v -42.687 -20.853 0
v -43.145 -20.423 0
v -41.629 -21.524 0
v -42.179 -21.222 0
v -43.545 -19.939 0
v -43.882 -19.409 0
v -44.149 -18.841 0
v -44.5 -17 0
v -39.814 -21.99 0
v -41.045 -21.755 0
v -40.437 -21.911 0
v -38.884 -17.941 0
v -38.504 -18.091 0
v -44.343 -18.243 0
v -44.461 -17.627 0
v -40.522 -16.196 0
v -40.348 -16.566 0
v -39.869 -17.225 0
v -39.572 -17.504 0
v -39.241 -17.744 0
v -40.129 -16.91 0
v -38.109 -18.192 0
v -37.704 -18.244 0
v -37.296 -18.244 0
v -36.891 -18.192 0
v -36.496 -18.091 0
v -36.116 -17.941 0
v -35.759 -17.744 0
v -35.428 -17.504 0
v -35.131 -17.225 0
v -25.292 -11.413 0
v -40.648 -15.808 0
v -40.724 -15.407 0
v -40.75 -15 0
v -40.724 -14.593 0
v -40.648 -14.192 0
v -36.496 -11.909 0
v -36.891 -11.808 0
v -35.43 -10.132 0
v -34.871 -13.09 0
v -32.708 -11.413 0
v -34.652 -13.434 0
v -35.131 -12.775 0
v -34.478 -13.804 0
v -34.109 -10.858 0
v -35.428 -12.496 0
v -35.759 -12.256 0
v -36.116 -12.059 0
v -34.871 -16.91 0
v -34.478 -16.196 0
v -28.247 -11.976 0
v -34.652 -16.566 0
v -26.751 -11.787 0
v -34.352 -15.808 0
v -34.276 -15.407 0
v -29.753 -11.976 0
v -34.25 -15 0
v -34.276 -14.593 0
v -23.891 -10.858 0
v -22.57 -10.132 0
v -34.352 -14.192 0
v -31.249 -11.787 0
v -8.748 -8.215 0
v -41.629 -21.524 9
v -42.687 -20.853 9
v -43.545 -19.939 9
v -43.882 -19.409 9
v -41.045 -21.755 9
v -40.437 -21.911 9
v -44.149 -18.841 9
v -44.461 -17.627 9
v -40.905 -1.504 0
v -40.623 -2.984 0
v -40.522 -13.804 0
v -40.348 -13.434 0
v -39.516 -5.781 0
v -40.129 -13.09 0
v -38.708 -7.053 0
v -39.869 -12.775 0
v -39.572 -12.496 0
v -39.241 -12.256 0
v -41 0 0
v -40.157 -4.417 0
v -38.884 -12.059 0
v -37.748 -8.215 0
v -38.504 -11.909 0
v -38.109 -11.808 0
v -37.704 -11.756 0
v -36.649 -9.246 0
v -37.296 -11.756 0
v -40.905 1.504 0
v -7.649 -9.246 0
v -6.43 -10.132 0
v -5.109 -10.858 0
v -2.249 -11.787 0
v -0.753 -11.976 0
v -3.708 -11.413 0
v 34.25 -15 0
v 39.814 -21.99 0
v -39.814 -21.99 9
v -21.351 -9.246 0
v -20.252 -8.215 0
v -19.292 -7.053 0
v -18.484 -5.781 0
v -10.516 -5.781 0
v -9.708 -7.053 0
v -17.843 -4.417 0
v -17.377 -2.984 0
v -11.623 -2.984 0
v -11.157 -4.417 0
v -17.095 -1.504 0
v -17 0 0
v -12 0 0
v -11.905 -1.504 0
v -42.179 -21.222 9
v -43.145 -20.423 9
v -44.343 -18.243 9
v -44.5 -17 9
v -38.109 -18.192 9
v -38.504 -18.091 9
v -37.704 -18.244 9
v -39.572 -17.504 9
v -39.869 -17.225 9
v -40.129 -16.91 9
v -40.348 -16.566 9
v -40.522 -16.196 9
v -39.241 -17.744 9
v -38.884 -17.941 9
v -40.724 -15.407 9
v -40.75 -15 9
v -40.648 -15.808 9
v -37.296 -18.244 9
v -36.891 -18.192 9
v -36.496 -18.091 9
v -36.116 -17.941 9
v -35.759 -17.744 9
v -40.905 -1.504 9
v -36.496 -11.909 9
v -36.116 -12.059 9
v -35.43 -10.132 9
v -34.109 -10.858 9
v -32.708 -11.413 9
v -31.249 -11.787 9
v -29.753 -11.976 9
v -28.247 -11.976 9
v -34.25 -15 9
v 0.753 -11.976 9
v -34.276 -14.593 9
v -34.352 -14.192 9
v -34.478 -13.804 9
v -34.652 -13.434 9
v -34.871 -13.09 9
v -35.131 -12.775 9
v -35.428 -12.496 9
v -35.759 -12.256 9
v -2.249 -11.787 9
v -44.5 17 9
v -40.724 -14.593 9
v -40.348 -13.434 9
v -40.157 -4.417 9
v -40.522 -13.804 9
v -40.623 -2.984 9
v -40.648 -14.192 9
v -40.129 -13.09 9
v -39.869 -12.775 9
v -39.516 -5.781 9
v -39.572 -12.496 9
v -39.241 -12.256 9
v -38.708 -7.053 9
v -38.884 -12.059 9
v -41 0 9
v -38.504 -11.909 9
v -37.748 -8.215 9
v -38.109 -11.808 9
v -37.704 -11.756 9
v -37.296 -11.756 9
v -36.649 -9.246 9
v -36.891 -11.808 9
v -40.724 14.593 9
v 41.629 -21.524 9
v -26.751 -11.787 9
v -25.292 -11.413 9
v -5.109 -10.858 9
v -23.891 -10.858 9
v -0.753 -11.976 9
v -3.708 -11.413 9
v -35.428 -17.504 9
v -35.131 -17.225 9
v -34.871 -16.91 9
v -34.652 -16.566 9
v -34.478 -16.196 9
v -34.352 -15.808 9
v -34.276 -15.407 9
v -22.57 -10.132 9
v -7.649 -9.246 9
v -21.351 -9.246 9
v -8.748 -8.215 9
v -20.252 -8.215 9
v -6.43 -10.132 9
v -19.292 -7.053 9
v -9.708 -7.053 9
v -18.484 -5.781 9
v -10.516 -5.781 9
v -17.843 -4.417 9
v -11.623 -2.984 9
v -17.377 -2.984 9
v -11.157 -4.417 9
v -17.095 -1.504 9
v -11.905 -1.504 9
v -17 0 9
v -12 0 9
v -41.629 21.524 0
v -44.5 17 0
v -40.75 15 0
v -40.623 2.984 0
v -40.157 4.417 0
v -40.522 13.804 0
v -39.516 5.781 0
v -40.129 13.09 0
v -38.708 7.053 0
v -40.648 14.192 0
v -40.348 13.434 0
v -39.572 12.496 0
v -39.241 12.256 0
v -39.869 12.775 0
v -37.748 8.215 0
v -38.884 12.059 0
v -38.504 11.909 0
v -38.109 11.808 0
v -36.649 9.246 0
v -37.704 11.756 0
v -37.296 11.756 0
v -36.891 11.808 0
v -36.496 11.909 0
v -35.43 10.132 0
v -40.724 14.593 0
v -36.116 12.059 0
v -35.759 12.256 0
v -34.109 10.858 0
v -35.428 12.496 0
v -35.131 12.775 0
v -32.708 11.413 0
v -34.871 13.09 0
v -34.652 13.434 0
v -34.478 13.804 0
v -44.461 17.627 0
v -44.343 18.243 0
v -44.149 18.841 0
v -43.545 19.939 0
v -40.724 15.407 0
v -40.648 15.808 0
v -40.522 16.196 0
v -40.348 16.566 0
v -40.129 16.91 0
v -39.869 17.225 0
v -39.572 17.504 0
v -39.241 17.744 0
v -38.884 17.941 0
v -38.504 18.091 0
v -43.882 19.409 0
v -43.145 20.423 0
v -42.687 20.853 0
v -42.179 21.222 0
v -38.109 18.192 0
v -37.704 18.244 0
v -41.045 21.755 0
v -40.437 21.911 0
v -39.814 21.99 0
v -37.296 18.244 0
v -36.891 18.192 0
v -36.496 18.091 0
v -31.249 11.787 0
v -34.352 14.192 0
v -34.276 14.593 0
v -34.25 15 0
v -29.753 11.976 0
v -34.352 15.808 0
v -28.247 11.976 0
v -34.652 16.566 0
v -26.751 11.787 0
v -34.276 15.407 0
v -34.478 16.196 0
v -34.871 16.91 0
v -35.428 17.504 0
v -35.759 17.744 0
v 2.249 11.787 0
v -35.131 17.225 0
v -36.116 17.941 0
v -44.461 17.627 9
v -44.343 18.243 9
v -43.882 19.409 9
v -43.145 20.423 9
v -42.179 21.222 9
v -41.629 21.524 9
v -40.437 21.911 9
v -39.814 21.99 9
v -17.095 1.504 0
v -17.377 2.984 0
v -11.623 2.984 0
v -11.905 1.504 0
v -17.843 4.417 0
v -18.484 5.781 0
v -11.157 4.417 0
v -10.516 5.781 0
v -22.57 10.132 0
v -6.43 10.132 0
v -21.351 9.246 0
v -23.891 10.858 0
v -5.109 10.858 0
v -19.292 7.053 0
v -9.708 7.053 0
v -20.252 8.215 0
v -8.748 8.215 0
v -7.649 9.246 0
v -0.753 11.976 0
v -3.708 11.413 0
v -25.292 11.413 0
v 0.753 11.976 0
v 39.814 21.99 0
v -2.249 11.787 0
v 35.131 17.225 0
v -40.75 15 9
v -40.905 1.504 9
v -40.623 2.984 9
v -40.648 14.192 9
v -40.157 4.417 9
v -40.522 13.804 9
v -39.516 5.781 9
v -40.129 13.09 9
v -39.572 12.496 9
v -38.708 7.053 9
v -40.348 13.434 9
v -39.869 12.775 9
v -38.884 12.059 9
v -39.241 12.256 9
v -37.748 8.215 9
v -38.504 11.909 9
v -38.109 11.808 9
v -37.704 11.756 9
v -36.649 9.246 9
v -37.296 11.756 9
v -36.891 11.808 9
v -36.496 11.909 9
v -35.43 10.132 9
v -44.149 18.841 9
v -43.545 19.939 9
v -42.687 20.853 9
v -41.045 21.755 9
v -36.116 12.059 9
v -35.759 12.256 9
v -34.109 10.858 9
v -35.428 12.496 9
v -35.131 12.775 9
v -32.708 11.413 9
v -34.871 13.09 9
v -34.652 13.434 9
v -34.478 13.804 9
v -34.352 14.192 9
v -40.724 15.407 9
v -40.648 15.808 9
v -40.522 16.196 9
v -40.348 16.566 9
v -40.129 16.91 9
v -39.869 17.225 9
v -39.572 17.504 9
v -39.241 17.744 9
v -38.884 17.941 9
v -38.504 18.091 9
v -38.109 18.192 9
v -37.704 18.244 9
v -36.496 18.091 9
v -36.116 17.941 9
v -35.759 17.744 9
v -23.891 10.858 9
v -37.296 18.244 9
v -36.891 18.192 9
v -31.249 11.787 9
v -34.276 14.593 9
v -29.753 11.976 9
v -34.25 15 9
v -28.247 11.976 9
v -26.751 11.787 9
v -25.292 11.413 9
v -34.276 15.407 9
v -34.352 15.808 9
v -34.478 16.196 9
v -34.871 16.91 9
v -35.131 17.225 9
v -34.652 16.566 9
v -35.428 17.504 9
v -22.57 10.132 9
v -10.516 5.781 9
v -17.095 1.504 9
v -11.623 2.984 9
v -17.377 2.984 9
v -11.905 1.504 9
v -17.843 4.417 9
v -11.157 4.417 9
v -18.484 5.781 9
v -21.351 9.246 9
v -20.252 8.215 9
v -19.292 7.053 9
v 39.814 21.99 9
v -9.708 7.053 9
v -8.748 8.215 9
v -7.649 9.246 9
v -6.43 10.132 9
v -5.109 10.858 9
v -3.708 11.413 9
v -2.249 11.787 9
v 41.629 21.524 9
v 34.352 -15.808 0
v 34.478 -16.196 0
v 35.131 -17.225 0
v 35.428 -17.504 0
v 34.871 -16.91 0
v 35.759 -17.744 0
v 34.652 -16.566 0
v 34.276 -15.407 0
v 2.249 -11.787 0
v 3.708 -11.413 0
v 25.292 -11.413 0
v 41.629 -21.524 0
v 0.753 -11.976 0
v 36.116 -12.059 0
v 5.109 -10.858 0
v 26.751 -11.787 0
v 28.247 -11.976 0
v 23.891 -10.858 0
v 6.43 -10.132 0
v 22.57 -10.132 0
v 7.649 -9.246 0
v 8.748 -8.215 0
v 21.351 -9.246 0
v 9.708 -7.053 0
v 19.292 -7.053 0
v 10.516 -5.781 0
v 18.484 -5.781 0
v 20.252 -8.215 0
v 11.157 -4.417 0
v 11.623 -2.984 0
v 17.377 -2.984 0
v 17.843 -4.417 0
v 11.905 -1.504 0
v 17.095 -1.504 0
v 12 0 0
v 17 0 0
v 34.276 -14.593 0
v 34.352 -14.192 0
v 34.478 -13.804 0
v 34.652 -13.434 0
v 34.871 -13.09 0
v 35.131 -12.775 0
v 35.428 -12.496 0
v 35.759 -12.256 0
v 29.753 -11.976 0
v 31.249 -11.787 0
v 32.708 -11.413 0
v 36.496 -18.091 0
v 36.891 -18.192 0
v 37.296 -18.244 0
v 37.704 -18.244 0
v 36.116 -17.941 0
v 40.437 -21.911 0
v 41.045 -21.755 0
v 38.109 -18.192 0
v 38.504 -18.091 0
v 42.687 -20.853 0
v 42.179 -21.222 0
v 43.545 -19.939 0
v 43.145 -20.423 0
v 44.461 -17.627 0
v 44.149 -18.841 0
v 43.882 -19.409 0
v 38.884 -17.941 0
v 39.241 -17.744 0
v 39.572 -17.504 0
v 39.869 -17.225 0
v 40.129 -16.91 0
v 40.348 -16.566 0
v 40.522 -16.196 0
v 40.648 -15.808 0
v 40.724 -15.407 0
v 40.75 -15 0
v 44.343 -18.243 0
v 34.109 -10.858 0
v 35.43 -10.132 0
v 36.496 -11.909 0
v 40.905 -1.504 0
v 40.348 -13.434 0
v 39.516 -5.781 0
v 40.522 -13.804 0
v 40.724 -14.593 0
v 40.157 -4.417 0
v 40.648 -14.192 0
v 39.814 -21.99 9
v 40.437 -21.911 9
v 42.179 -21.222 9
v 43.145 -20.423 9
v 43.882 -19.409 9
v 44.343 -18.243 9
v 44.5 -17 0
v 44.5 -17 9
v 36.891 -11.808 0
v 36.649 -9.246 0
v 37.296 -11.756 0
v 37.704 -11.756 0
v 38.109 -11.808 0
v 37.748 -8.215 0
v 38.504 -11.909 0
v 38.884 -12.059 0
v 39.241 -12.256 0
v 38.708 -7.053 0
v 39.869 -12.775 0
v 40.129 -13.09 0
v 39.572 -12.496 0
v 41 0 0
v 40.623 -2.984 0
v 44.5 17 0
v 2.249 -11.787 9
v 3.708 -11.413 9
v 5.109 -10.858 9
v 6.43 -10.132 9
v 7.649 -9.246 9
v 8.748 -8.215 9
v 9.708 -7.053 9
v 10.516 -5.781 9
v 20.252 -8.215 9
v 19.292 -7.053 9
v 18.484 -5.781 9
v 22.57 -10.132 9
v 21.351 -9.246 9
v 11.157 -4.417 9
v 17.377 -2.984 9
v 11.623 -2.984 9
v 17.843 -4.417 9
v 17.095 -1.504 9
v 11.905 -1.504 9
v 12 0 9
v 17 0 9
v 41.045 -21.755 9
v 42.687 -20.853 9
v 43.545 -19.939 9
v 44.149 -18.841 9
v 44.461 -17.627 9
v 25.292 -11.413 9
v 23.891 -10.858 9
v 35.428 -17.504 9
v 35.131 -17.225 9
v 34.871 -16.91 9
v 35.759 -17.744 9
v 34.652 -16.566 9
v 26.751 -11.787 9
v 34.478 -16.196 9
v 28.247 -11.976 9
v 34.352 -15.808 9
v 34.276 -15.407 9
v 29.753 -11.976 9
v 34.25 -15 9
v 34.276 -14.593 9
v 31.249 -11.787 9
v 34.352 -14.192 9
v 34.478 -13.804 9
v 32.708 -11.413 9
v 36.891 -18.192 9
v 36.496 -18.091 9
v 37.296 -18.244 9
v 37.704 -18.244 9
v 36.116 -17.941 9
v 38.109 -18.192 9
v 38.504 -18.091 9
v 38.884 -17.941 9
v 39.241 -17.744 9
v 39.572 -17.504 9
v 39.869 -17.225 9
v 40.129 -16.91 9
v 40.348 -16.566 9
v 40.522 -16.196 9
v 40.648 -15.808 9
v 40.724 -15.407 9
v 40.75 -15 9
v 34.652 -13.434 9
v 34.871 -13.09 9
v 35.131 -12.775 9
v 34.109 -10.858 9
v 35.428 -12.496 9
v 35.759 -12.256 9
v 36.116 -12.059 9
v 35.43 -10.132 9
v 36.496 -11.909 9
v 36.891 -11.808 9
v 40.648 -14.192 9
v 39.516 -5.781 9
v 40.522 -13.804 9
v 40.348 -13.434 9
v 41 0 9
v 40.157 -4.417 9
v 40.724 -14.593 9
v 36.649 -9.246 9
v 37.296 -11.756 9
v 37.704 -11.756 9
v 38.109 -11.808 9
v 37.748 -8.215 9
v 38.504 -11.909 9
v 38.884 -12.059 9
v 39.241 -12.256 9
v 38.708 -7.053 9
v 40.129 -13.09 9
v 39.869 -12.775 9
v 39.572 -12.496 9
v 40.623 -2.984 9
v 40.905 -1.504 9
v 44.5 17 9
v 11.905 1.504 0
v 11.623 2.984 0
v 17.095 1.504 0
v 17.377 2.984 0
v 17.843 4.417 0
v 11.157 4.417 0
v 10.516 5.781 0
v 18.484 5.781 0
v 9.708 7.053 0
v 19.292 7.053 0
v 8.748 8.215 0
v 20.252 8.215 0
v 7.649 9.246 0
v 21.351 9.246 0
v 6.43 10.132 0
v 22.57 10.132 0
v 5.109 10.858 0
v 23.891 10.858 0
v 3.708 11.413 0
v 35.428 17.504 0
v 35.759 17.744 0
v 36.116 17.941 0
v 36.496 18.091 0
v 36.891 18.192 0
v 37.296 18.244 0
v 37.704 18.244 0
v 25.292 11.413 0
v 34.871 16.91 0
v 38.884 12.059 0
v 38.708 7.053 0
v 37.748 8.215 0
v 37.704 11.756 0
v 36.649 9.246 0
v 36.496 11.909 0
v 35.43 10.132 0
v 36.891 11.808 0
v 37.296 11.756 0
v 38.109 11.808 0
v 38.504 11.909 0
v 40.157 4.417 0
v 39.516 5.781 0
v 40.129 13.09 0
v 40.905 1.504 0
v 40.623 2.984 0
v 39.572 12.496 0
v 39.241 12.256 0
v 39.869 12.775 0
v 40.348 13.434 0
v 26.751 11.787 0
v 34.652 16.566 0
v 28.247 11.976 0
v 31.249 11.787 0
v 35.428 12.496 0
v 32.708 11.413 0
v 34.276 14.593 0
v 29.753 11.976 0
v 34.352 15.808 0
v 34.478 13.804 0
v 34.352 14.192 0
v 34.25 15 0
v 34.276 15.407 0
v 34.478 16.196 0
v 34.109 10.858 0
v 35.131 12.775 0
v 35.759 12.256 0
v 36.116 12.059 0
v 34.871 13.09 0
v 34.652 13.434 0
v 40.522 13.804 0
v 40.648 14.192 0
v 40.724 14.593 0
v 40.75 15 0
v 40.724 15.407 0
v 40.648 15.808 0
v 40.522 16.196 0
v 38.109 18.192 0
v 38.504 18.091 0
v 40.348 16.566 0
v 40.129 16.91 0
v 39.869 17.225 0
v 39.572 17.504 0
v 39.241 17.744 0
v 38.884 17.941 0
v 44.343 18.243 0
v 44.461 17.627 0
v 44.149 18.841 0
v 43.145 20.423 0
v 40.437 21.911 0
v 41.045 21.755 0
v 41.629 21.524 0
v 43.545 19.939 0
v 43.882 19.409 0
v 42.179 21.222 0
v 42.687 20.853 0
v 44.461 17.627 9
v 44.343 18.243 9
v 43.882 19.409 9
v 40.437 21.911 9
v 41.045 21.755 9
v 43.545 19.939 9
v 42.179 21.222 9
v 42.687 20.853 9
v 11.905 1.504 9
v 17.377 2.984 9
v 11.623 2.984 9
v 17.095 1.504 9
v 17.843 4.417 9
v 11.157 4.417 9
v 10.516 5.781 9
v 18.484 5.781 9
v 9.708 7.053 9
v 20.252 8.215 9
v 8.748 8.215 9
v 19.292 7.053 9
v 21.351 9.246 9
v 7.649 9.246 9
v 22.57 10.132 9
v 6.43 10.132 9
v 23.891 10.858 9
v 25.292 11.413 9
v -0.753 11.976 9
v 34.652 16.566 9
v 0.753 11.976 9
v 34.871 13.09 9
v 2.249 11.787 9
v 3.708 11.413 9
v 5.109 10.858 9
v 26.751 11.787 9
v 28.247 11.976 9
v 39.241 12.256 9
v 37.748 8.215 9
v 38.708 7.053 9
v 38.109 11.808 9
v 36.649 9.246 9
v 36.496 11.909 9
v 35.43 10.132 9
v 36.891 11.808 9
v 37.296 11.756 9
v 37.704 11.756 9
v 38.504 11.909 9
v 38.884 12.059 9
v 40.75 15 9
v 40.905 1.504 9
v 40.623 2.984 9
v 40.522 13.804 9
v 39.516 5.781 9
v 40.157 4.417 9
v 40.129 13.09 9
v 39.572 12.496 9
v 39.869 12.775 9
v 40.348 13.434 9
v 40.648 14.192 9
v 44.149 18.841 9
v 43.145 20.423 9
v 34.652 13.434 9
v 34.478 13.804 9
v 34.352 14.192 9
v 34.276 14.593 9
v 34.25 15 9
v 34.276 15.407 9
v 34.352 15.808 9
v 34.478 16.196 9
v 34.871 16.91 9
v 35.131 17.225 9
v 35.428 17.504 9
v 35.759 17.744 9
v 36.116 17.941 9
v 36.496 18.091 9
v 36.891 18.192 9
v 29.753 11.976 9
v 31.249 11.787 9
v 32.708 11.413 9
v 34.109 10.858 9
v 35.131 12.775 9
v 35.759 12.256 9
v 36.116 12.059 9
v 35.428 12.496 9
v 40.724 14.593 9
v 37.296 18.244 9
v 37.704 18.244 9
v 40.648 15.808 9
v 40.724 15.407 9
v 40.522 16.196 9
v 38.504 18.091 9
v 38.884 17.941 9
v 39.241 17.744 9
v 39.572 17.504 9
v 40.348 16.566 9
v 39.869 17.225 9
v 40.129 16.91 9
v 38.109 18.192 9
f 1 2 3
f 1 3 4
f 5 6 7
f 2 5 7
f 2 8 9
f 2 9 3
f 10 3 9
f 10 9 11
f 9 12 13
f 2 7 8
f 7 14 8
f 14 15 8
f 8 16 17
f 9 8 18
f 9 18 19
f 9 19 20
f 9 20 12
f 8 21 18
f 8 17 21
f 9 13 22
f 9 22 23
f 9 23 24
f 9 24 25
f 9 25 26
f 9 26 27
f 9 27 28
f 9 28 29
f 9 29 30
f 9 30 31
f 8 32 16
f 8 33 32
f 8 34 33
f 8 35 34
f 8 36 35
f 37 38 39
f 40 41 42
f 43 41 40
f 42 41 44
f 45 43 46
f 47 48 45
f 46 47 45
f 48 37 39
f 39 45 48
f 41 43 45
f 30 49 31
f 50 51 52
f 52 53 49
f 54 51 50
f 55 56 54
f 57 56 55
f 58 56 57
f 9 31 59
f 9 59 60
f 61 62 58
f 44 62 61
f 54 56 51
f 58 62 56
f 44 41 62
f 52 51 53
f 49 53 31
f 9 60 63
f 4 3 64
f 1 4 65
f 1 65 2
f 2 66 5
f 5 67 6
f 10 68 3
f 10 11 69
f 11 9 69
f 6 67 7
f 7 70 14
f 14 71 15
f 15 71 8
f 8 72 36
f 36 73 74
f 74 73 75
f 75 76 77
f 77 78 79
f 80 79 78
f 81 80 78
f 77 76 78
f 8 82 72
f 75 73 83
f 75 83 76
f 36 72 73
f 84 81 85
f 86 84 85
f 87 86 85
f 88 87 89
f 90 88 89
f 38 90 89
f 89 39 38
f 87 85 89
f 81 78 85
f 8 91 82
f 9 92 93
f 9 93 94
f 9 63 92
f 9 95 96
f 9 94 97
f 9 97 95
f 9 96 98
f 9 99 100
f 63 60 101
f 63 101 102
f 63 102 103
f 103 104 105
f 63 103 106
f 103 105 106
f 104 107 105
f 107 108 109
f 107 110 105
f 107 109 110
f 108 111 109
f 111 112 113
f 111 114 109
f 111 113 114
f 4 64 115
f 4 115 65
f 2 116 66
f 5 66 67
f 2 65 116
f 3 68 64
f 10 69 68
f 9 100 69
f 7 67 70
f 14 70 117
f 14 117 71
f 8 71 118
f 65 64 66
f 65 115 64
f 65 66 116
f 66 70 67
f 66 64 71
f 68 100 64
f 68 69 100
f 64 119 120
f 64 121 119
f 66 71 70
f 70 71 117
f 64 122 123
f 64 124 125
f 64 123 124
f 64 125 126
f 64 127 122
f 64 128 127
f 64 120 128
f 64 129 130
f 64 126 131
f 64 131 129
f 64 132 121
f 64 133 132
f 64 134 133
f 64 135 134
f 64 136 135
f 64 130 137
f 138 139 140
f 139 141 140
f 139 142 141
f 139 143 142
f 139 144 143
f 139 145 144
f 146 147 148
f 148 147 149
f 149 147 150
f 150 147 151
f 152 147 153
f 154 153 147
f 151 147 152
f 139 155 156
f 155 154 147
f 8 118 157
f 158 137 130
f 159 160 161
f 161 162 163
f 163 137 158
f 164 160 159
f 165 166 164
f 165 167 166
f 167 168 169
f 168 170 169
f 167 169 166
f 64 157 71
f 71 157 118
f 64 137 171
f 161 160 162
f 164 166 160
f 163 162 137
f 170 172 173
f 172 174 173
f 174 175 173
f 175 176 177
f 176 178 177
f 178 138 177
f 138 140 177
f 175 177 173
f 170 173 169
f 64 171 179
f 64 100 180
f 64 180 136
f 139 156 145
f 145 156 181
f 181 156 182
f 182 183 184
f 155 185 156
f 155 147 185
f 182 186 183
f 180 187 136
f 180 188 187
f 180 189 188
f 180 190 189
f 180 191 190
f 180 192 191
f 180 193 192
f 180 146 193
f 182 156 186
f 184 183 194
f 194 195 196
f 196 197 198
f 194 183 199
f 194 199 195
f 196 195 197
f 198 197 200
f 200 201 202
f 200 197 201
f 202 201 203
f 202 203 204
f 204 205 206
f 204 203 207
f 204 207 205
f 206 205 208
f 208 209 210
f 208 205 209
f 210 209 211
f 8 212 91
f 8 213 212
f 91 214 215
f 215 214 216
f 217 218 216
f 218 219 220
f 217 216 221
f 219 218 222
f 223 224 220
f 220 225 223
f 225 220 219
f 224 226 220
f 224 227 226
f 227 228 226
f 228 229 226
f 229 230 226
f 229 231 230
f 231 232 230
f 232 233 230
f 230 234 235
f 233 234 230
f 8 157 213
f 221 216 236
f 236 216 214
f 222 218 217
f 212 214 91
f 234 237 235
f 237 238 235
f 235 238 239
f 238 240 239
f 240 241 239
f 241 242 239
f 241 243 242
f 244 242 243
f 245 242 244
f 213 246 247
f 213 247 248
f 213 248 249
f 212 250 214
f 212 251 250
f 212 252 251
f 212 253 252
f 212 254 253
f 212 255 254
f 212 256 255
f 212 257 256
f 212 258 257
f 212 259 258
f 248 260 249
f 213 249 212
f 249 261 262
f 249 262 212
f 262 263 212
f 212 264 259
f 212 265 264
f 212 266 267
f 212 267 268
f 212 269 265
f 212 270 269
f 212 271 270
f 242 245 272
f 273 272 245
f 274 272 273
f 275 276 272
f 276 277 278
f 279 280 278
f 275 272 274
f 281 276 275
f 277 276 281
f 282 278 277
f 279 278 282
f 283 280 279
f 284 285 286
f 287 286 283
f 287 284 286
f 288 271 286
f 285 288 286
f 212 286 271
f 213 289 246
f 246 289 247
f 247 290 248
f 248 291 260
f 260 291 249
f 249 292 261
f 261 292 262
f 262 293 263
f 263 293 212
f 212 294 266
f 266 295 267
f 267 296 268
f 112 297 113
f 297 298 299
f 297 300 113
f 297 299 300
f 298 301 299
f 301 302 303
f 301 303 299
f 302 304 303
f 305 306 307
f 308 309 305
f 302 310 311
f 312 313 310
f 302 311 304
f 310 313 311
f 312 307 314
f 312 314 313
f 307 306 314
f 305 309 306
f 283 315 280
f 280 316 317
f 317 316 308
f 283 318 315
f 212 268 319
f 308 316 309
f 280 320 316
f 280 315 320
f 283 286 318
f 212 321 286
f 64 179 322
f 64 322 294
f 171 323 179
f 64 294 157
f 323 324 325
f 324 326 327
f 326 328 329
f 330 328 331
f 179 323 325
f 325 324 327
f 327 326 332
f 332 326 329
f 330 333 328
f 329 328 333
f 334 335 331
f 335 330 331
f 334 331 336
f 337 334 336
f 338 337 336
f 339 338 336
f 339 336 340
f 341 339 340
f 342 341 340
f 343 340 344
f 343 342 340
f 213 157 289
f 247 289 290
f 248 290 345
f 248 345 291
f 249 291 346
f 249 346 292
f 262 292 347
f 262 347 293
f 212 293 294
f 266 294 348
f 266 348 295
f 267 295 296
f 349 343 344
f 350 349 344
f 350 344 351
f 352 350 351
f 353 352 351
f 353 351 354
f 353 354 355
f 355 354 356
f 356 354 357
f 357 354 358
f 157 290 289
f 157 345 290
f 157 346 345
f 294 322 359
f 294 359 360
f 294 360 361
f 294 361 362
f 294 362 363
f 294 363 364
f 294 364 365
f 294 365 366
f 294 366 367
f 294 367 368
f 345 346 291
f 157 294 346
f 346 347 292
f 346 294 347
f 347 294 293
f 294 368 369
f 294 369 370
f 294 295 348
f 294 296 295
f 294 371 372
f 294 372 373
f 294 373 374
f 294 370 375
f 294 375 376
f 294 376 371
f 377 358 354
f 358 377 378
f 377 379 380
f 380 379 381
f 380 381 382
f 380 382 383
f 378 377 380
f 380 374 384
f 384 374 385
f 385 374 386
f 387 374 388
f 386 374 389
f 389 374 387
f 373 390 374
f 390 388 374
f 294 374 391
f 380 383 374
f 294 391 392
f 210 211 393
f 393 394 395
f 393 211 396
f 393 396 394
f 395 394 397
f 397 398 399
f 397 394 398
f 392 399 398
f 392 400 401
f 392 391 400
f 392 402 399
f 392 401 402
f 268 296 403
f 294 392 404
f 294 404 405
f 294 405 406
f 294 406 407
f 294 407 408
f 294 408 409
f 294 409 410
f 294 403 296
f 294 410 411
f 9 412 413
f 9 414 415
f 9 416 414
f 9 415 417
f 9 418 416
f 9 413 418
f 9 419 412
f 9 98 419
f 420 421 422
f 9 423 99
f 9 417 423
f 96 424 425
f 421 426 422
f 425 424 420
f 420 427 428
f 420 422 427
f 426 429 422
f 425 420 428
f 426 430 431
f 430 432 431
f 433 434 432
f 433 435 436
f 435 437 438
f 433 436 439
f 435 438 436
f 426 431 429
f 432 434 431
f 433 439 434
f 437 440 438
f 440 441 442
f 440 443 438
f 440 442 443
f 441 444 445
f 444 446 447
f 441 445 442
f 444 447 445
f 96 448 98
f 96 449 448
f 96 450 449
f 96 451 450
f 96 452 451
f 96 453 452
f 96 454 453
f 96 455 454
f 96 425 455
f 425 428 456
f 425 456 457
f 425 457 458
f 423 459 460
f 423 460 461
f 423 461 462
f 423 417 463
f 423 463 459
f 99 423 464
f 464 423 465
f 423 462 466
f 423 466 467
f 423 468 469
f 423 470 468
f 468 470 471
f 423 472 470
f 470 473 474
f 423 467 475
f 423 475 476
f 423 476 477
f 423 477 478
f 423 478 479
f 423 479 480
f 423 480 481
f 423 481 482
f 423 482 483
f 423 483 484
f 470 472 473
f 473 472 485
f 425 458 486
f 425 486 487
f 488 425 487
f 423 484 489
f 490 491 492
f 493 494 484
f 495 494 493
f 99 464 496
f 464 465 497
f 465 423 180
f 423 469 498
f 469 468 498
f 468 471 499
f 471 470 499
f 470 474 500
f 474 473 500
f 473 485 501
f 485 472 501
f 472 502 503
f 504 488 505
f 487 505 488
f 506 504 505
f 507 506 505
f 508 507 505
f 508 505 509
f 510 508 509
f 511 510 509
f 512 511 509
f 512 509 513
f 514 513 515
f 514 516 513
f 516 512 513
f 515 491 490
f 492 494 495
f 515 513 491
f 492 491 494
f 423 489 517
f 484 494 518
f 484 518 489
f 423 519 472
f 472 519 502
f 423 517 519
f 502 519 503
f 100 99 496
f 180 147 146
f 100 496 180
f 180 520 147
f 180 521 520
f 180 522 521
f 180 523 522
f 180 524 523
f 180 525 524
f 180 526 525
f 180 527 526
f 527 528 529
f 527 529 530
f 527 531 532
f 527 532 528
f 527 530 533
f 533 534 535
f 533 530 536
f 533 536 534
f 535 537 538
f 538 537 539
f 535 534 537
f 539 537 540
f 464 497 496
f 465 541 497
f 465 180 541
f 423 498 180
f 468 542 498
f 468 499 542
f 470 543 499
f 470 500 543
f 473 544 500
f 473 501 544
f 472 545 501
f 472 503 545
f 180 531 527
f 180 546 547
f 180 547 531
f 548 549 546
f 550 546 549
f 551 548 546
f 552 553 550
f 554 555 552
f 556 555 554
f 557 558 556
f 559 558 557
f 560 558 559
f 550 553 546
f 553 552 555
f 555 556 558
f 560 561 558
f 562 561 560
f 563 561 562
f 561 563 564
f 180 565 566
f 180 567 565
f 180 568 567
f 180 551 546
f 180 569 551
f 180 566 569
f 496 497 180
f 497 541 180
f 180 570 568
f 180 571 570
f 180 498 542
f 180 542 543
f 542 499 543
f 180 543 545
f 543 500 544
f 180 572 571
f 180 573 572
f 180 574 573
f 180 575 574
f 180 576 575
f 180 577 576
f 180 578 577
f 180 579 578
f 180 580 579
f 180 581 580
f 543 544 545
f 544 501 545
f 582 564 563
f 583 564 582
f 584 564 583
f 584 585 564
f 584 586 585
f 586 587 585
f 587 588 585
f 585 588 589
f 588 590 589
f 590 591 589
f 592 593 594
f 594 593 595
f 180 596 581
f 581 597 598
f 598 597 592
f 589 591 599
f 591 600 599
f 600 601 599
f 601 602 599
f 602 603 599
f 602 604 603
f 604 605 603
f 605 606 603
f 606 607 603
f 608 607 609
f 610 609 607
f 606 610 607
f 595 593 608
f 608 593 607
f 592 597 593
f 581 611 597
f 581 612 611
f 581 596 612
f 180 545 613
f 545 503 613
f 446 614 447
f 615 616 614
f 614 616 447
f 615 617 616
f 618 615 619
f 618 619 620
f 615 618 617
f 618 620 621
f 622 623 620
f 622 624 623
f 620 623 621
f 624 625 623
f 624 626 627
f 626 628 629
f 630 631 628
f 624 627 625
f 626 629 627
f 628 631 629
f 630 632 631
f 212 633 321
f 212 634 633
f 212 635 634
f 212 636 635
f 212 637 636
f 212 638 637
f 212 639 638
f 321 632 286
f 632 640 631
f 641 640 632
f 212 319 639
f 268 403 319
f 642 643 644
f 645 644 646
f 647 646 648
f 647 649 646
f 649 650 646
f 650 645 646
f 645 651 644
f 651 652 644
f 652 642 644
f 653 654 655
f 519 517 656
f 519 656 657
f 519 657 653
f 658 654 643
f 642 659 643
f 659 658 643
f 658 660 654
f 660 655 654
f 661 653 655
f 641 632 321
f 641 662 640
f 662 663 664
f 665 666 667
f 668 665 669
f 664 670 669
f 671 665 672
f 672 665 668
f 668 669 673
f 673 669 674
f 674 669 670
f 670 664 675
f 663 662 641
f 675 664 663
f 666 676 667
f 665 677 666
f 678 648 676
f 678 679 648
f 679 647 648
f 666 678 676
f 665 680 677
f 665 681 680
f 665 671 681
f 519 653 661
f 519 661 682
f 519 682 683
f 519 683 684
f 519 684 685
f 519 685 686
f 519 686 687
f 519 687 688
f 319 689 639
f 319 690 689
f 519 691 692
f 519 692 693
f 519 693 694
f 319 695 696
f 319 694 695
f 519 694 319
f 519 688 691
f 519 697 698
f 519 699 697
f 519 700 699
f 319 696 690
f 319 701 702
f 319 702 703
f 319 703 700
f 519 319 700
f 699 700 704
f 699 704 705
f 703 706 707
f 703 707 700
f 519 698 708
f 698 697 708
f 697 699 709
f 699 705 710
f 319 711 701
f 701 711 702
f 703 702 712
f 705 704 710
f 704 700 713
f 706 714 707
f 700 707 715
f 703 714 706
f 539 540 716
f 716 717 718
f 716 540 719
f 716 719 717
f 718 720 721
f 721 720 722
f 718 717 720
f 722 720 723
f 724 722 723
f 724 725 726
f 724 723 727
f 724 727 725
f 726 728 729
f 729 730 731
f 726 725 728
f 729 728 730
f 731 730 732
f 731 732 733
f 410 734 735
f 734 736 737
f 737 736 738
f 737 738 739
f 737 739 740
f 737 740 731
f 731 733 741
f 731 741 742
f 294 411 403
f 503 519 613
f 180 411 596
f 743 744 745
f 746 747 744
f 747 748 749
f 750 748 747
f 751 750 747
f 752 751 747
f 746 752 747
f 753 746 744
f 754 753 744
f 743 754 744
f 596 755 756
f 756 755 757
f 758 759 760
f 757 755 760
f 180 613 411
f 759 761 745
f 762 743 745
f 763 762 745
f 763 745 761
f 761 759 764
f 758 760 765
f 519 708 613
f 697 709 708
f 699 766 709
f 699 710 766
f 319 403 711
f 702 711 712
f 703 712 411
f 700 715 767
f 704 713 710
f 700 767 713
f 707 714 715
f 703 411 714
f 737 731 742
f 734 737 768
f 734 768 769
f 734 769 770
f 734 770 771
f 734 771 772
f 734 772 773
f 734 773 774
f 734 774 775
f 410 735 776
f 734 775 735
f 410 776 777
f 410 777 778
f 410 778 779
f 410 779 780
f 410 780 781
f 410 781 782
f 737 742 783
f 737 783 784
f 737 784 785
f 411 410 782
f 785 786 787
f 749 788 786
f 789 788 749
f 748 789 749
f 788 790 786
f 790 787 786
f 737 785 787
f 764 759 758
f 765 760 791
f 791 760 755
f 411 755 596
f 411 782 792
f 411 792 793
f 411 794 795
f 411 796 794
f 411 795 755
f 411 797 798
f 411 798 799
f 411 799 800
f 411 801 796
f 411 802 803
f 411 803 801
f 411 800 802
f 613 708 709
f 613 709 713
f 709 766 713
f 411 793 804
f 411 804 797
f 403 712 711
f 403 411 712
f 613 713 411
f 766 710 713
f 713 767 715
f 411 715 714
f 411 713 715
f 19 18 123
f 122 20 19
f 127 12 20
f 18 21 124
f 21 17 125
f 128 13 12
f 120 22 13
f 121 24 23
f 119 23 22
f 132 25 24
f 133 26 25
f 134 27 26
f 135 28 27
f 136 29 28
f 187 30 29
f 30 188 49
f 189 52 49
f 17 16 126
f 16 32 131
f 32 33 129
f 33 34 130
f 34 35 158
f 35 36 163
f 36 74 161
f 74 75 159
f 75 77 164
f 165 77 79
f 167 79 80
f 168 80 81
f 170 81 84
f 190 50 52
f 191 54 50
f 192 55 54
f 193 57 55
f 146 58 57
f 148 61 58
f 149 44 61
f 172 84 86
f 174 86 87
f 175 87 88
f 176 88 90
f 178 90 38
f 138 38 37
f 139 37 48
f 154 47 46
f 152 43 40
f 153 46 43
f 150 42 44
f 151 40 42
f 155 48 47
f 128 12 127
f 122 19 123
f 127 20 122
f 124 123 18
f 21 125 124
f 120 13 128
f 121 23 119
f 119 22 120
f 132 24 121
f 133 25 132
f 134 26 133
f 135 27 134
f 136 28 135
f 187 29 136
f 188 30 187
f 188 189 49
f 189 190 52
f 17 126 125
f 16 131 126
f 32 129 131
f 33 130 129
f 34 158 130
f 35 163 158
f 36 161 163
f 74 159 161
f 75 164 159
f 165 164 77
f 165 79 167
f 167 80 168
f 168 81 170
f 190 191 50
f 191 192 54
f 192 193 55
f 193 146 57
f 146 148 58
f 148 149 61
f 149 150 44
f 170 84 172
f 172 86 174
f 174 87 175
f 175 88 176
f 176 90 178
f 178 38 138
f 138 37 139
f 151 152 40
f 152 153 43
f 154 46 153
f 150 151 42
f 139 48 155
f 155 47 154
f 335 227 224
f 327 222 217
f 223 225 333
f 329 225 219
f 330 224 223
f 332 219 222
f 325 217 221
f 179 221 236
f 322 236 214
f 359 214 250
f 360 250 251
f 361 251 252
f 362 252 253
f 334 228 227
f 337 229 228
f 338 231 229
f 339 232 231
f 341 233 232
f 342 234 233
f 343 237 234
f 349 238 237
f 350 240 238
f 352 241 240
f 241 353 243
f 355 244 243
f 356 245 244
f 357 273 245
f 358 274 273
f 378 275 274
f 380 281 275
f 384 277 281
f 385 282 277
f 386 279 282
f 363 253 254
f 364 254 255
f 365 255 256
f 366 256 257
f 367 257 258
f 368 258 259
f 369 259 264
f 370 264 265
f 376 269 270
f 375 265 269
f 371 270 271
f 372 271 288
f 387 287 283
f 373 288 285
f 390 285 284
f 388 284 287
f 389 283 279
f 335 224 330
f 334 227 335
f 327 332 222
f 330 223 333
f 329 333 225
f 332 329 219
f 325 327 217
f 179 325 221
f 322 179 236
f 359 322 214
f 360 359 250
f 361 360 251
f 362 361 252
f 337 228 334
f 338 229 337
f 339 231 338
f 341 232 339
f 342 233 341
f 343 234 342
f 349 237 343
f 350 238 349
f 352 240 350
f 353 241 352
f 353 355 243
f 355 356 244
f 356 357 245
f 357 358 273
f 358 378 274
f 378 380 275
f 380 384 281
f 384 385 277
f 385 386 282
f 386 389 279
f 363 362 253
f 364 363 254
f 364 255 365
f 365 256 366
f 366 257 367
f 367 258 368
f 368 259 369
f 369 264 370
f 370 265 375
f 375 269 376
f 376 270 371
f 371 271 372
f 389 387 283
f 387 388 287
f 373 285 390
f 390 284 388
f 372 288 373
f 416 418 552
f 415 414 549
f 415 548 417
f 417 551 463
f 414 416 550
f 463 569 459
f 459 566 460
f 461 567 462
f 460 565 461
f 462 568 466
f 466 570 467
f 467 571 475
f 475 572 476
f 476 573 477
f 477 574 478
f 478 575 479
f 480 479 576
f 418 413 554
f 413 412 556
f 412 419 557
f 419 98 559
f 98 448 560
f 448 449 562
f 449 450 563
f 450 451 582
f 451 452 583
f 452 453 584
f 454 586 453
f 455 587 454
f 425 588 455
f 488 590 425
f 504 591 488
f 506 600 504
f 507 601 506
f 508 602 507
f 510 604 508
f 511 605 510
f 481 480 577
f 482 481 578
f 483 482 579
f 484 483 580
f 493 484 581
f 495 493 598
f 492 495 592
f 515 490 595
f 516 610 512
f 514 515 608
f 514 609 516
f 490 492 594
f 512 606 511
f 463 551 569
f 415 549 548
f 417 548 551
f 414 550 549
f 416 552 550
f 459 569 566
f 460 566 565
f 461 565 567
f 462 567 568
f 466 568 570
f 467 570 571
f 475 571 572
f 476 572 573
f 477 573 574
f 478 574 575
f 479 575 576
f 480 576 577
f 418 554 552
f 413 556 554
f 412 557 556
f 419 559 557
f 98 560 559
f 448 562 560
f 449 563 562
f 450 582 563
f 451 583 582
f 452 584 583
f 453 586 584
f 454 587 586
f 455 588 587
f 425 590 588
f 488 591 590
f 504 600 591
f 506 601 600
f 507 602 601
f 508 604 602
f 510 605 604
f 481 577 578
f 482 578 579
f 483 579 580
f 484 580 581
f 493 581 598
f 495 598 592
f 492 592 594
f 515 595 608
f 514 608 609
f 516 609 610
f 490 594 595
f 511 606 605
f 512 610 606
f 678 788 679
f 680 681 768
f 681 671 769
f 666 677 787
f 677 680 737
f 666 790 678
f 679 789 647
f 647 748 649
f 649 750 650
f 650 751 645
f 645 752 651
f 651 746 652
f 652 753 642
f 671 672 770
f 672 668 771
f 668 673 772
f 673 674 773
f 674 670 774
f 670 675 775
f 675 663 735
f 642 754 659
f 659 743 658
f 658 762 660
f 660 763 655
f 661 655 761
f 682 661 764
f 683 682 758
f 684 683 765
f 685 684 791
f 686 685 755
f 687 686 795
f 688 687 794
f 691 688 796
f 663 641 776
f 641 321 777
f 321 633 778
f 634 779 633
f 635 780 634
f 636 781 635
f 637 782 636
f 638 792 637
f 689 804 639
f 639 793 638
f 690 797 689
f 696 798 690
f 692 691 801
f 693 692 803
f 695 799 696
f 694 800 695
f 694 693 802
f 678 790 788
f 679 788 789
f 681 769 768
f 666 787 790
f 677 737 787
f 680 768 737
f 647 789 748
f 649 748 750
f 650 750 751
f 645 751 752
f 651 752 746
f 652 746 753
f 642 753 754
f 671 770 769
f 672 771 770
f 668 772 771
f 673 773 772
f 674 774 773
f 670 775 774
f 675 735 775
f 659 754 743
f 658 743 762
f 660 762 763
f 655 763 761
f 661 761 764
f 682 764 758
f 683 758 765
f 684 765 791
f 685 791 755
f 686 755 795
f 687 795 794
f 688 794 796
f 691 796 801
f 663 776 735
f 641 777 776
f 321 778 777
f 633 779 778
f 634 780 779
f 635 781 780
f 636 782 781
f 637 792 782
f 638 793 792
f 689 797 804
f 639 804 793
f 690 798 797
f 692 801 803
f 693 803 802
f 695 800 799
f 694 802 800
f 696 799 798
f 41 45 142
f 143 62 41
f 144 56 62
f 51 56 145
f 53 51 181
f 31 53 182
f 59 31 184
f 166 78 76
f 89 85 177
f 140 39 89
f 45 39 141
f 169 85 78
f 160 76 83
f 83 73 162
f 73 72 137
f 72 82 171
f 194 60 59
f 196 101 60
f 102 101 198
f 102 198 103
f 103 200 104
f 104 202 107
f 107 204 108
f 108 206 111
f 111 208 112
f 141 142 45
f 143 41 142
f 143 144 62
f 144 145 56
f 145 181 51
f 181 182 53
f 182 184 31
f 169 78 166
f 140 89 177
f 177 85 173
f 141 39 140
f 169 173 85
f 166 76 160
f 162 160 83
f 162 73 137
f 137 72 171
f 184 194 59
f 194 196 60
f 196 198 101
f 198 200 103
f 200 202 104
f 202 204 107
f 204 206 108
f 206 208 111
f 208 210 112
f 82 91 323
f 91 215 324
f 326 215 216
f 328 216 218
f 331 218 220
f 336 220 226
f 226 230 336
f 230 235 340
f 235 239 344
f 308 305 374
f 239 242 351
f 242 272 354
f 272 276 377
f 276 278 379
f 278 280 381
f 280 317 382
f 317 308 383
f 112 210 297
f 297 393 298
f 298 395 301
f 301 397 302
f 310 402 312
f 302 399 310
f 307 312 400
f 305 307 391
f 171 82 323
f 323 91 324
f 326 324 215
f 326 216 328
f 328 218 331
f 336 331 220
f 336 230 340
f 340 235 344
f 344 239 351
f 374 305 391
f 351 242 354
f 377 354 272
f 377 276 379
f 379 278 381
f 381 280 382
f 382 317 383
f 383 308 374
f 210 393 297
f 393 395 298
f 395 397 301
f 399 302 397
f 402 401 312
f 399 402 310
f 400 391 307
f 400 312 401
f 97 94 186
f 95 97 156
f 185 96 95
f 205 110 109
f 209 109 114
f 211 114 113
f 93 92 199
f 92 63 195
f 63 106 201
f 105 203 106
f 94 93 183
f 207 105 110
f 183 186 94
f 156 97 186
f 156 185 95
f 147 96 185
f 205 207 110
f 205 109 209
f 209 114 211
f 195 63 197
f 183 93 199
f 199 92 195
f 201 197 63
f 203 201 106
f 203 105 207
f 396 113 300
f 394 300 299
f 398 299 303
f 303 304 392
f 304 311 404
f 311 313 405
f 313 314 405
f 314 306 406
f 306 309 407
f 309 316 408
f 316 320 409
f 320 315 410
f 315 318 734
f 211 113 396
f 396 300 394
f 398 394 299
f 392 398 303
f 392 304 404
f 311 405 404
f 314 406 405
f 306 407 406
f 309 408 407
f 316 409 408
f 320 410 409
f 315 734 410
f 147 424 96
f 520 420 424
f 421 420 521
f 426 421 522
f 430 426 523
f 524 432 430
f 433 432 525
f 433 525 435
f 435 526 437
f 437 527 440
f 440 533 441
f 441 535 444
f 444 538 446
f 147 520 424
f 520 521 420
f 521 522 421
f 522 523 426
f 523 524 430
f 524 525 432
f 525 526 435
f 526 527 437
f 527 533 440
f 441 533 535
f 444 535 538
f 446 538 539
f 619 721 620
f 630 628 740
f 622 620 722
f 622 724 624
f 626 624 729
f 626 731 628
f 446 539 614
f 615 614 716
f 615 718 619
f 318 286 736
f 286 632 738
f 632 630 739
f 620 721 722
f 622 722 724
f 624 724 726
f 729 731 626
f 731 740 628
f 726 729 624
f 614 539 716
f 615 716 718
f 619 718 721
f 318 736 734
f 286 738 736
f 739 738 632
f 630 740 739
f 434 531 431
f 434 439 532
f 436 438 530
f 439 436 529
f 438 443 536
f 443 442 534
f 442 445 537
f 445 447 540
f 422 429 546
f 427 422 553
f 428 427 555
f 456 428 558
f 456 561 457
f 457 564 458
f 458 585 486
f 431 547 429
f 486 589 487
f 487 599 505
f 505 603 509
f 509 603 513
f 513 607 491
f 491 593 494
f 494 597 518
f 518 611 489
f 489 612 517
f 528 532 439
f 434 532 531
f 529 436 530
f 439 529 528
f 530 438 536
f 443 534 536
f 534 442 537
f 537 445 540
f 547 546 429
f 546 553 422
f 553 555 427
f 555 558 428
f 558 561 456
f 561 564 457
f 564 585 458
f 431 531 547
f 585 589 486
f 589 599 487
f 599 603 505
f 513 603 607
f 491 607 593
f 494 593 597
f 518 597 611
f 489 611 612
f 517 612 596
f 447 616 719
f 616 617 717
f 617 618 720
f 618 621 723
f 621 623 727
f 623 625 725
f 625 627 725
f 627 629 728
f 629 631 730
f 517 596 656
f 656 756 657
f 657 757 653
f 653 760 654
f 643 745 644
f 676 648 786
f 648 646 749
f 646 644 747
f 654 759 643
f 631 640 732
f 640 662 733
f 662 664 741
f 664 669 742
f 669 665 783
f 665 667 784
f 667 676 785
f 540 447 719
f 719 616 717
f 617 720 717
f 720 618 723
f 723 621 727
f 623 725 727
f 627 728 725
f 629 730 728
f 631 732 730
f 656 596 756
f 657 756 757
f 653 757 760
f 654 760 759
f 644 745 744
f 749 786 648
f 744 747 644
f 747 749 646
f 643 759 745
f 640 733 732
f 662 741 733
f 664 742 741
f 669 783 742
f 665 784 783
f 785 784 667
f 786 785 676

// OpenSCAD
$fn = 50;

difference() {
	union() {
		hull() {
			translate(v = [-39.5, 17.0, 0]) {
				cylinder(h = 9, r = 5);
			}
			translate(v = [39.5, 17.0, 0]) {
				cylinder(h = 9, r = 5);
			}
			translate(v = [-39.5, -17.0, 0]) {
				cylinder(h = 9, r = 5);
			}
			translate(v = [39.5, -17.0, 0]) {
				cylinder(h = 9, r = 5);
			}
		}
	}
	union() {
		translate(v = [-37.5, -15.0, -100.0]) {
			cylinder(h = 200, r = 3.25);
		}
		translate(v = [-37.5, 15.0, -100.0]) {
			cylinder(h = 200, r = 3.25);
		}
		translate(v = [37.5, -15.0, -100.0]) {
			cylinder(h = 200, r = 3.25);
		}
		translate(v = [37.5, 15.0, -100.0]) {
			cylinder(h = 200, r = 3.25);
		}
		translate(v = [-37.5, -15.0, -100.0]) {
			cylinder(h = 200, r = 1.8);
		}
		translate(v = [-37.5, 15.0, -100.0]) {
			cylinder(h = 200, r = 1.8);
		}
		translate(v = [37.5, -15.0, -100.0]) {
			cylinder(h = 200, r = 1.8);
		}
		translate(v = [37.5, 15.0, -100.0]) {
			cylinder(h = 200, r = 1.8);
		}
		translate(v = [-29.0, 0, 0.0]) {
			cylinder(h = 9, r = 12.0);
		}
		cylinder(h = 9, r = 12.0);
		translate(v = [29.0, 0, 0.0]) {
			cylinder(h = 9, r = 12.0);
		}
	}
}
